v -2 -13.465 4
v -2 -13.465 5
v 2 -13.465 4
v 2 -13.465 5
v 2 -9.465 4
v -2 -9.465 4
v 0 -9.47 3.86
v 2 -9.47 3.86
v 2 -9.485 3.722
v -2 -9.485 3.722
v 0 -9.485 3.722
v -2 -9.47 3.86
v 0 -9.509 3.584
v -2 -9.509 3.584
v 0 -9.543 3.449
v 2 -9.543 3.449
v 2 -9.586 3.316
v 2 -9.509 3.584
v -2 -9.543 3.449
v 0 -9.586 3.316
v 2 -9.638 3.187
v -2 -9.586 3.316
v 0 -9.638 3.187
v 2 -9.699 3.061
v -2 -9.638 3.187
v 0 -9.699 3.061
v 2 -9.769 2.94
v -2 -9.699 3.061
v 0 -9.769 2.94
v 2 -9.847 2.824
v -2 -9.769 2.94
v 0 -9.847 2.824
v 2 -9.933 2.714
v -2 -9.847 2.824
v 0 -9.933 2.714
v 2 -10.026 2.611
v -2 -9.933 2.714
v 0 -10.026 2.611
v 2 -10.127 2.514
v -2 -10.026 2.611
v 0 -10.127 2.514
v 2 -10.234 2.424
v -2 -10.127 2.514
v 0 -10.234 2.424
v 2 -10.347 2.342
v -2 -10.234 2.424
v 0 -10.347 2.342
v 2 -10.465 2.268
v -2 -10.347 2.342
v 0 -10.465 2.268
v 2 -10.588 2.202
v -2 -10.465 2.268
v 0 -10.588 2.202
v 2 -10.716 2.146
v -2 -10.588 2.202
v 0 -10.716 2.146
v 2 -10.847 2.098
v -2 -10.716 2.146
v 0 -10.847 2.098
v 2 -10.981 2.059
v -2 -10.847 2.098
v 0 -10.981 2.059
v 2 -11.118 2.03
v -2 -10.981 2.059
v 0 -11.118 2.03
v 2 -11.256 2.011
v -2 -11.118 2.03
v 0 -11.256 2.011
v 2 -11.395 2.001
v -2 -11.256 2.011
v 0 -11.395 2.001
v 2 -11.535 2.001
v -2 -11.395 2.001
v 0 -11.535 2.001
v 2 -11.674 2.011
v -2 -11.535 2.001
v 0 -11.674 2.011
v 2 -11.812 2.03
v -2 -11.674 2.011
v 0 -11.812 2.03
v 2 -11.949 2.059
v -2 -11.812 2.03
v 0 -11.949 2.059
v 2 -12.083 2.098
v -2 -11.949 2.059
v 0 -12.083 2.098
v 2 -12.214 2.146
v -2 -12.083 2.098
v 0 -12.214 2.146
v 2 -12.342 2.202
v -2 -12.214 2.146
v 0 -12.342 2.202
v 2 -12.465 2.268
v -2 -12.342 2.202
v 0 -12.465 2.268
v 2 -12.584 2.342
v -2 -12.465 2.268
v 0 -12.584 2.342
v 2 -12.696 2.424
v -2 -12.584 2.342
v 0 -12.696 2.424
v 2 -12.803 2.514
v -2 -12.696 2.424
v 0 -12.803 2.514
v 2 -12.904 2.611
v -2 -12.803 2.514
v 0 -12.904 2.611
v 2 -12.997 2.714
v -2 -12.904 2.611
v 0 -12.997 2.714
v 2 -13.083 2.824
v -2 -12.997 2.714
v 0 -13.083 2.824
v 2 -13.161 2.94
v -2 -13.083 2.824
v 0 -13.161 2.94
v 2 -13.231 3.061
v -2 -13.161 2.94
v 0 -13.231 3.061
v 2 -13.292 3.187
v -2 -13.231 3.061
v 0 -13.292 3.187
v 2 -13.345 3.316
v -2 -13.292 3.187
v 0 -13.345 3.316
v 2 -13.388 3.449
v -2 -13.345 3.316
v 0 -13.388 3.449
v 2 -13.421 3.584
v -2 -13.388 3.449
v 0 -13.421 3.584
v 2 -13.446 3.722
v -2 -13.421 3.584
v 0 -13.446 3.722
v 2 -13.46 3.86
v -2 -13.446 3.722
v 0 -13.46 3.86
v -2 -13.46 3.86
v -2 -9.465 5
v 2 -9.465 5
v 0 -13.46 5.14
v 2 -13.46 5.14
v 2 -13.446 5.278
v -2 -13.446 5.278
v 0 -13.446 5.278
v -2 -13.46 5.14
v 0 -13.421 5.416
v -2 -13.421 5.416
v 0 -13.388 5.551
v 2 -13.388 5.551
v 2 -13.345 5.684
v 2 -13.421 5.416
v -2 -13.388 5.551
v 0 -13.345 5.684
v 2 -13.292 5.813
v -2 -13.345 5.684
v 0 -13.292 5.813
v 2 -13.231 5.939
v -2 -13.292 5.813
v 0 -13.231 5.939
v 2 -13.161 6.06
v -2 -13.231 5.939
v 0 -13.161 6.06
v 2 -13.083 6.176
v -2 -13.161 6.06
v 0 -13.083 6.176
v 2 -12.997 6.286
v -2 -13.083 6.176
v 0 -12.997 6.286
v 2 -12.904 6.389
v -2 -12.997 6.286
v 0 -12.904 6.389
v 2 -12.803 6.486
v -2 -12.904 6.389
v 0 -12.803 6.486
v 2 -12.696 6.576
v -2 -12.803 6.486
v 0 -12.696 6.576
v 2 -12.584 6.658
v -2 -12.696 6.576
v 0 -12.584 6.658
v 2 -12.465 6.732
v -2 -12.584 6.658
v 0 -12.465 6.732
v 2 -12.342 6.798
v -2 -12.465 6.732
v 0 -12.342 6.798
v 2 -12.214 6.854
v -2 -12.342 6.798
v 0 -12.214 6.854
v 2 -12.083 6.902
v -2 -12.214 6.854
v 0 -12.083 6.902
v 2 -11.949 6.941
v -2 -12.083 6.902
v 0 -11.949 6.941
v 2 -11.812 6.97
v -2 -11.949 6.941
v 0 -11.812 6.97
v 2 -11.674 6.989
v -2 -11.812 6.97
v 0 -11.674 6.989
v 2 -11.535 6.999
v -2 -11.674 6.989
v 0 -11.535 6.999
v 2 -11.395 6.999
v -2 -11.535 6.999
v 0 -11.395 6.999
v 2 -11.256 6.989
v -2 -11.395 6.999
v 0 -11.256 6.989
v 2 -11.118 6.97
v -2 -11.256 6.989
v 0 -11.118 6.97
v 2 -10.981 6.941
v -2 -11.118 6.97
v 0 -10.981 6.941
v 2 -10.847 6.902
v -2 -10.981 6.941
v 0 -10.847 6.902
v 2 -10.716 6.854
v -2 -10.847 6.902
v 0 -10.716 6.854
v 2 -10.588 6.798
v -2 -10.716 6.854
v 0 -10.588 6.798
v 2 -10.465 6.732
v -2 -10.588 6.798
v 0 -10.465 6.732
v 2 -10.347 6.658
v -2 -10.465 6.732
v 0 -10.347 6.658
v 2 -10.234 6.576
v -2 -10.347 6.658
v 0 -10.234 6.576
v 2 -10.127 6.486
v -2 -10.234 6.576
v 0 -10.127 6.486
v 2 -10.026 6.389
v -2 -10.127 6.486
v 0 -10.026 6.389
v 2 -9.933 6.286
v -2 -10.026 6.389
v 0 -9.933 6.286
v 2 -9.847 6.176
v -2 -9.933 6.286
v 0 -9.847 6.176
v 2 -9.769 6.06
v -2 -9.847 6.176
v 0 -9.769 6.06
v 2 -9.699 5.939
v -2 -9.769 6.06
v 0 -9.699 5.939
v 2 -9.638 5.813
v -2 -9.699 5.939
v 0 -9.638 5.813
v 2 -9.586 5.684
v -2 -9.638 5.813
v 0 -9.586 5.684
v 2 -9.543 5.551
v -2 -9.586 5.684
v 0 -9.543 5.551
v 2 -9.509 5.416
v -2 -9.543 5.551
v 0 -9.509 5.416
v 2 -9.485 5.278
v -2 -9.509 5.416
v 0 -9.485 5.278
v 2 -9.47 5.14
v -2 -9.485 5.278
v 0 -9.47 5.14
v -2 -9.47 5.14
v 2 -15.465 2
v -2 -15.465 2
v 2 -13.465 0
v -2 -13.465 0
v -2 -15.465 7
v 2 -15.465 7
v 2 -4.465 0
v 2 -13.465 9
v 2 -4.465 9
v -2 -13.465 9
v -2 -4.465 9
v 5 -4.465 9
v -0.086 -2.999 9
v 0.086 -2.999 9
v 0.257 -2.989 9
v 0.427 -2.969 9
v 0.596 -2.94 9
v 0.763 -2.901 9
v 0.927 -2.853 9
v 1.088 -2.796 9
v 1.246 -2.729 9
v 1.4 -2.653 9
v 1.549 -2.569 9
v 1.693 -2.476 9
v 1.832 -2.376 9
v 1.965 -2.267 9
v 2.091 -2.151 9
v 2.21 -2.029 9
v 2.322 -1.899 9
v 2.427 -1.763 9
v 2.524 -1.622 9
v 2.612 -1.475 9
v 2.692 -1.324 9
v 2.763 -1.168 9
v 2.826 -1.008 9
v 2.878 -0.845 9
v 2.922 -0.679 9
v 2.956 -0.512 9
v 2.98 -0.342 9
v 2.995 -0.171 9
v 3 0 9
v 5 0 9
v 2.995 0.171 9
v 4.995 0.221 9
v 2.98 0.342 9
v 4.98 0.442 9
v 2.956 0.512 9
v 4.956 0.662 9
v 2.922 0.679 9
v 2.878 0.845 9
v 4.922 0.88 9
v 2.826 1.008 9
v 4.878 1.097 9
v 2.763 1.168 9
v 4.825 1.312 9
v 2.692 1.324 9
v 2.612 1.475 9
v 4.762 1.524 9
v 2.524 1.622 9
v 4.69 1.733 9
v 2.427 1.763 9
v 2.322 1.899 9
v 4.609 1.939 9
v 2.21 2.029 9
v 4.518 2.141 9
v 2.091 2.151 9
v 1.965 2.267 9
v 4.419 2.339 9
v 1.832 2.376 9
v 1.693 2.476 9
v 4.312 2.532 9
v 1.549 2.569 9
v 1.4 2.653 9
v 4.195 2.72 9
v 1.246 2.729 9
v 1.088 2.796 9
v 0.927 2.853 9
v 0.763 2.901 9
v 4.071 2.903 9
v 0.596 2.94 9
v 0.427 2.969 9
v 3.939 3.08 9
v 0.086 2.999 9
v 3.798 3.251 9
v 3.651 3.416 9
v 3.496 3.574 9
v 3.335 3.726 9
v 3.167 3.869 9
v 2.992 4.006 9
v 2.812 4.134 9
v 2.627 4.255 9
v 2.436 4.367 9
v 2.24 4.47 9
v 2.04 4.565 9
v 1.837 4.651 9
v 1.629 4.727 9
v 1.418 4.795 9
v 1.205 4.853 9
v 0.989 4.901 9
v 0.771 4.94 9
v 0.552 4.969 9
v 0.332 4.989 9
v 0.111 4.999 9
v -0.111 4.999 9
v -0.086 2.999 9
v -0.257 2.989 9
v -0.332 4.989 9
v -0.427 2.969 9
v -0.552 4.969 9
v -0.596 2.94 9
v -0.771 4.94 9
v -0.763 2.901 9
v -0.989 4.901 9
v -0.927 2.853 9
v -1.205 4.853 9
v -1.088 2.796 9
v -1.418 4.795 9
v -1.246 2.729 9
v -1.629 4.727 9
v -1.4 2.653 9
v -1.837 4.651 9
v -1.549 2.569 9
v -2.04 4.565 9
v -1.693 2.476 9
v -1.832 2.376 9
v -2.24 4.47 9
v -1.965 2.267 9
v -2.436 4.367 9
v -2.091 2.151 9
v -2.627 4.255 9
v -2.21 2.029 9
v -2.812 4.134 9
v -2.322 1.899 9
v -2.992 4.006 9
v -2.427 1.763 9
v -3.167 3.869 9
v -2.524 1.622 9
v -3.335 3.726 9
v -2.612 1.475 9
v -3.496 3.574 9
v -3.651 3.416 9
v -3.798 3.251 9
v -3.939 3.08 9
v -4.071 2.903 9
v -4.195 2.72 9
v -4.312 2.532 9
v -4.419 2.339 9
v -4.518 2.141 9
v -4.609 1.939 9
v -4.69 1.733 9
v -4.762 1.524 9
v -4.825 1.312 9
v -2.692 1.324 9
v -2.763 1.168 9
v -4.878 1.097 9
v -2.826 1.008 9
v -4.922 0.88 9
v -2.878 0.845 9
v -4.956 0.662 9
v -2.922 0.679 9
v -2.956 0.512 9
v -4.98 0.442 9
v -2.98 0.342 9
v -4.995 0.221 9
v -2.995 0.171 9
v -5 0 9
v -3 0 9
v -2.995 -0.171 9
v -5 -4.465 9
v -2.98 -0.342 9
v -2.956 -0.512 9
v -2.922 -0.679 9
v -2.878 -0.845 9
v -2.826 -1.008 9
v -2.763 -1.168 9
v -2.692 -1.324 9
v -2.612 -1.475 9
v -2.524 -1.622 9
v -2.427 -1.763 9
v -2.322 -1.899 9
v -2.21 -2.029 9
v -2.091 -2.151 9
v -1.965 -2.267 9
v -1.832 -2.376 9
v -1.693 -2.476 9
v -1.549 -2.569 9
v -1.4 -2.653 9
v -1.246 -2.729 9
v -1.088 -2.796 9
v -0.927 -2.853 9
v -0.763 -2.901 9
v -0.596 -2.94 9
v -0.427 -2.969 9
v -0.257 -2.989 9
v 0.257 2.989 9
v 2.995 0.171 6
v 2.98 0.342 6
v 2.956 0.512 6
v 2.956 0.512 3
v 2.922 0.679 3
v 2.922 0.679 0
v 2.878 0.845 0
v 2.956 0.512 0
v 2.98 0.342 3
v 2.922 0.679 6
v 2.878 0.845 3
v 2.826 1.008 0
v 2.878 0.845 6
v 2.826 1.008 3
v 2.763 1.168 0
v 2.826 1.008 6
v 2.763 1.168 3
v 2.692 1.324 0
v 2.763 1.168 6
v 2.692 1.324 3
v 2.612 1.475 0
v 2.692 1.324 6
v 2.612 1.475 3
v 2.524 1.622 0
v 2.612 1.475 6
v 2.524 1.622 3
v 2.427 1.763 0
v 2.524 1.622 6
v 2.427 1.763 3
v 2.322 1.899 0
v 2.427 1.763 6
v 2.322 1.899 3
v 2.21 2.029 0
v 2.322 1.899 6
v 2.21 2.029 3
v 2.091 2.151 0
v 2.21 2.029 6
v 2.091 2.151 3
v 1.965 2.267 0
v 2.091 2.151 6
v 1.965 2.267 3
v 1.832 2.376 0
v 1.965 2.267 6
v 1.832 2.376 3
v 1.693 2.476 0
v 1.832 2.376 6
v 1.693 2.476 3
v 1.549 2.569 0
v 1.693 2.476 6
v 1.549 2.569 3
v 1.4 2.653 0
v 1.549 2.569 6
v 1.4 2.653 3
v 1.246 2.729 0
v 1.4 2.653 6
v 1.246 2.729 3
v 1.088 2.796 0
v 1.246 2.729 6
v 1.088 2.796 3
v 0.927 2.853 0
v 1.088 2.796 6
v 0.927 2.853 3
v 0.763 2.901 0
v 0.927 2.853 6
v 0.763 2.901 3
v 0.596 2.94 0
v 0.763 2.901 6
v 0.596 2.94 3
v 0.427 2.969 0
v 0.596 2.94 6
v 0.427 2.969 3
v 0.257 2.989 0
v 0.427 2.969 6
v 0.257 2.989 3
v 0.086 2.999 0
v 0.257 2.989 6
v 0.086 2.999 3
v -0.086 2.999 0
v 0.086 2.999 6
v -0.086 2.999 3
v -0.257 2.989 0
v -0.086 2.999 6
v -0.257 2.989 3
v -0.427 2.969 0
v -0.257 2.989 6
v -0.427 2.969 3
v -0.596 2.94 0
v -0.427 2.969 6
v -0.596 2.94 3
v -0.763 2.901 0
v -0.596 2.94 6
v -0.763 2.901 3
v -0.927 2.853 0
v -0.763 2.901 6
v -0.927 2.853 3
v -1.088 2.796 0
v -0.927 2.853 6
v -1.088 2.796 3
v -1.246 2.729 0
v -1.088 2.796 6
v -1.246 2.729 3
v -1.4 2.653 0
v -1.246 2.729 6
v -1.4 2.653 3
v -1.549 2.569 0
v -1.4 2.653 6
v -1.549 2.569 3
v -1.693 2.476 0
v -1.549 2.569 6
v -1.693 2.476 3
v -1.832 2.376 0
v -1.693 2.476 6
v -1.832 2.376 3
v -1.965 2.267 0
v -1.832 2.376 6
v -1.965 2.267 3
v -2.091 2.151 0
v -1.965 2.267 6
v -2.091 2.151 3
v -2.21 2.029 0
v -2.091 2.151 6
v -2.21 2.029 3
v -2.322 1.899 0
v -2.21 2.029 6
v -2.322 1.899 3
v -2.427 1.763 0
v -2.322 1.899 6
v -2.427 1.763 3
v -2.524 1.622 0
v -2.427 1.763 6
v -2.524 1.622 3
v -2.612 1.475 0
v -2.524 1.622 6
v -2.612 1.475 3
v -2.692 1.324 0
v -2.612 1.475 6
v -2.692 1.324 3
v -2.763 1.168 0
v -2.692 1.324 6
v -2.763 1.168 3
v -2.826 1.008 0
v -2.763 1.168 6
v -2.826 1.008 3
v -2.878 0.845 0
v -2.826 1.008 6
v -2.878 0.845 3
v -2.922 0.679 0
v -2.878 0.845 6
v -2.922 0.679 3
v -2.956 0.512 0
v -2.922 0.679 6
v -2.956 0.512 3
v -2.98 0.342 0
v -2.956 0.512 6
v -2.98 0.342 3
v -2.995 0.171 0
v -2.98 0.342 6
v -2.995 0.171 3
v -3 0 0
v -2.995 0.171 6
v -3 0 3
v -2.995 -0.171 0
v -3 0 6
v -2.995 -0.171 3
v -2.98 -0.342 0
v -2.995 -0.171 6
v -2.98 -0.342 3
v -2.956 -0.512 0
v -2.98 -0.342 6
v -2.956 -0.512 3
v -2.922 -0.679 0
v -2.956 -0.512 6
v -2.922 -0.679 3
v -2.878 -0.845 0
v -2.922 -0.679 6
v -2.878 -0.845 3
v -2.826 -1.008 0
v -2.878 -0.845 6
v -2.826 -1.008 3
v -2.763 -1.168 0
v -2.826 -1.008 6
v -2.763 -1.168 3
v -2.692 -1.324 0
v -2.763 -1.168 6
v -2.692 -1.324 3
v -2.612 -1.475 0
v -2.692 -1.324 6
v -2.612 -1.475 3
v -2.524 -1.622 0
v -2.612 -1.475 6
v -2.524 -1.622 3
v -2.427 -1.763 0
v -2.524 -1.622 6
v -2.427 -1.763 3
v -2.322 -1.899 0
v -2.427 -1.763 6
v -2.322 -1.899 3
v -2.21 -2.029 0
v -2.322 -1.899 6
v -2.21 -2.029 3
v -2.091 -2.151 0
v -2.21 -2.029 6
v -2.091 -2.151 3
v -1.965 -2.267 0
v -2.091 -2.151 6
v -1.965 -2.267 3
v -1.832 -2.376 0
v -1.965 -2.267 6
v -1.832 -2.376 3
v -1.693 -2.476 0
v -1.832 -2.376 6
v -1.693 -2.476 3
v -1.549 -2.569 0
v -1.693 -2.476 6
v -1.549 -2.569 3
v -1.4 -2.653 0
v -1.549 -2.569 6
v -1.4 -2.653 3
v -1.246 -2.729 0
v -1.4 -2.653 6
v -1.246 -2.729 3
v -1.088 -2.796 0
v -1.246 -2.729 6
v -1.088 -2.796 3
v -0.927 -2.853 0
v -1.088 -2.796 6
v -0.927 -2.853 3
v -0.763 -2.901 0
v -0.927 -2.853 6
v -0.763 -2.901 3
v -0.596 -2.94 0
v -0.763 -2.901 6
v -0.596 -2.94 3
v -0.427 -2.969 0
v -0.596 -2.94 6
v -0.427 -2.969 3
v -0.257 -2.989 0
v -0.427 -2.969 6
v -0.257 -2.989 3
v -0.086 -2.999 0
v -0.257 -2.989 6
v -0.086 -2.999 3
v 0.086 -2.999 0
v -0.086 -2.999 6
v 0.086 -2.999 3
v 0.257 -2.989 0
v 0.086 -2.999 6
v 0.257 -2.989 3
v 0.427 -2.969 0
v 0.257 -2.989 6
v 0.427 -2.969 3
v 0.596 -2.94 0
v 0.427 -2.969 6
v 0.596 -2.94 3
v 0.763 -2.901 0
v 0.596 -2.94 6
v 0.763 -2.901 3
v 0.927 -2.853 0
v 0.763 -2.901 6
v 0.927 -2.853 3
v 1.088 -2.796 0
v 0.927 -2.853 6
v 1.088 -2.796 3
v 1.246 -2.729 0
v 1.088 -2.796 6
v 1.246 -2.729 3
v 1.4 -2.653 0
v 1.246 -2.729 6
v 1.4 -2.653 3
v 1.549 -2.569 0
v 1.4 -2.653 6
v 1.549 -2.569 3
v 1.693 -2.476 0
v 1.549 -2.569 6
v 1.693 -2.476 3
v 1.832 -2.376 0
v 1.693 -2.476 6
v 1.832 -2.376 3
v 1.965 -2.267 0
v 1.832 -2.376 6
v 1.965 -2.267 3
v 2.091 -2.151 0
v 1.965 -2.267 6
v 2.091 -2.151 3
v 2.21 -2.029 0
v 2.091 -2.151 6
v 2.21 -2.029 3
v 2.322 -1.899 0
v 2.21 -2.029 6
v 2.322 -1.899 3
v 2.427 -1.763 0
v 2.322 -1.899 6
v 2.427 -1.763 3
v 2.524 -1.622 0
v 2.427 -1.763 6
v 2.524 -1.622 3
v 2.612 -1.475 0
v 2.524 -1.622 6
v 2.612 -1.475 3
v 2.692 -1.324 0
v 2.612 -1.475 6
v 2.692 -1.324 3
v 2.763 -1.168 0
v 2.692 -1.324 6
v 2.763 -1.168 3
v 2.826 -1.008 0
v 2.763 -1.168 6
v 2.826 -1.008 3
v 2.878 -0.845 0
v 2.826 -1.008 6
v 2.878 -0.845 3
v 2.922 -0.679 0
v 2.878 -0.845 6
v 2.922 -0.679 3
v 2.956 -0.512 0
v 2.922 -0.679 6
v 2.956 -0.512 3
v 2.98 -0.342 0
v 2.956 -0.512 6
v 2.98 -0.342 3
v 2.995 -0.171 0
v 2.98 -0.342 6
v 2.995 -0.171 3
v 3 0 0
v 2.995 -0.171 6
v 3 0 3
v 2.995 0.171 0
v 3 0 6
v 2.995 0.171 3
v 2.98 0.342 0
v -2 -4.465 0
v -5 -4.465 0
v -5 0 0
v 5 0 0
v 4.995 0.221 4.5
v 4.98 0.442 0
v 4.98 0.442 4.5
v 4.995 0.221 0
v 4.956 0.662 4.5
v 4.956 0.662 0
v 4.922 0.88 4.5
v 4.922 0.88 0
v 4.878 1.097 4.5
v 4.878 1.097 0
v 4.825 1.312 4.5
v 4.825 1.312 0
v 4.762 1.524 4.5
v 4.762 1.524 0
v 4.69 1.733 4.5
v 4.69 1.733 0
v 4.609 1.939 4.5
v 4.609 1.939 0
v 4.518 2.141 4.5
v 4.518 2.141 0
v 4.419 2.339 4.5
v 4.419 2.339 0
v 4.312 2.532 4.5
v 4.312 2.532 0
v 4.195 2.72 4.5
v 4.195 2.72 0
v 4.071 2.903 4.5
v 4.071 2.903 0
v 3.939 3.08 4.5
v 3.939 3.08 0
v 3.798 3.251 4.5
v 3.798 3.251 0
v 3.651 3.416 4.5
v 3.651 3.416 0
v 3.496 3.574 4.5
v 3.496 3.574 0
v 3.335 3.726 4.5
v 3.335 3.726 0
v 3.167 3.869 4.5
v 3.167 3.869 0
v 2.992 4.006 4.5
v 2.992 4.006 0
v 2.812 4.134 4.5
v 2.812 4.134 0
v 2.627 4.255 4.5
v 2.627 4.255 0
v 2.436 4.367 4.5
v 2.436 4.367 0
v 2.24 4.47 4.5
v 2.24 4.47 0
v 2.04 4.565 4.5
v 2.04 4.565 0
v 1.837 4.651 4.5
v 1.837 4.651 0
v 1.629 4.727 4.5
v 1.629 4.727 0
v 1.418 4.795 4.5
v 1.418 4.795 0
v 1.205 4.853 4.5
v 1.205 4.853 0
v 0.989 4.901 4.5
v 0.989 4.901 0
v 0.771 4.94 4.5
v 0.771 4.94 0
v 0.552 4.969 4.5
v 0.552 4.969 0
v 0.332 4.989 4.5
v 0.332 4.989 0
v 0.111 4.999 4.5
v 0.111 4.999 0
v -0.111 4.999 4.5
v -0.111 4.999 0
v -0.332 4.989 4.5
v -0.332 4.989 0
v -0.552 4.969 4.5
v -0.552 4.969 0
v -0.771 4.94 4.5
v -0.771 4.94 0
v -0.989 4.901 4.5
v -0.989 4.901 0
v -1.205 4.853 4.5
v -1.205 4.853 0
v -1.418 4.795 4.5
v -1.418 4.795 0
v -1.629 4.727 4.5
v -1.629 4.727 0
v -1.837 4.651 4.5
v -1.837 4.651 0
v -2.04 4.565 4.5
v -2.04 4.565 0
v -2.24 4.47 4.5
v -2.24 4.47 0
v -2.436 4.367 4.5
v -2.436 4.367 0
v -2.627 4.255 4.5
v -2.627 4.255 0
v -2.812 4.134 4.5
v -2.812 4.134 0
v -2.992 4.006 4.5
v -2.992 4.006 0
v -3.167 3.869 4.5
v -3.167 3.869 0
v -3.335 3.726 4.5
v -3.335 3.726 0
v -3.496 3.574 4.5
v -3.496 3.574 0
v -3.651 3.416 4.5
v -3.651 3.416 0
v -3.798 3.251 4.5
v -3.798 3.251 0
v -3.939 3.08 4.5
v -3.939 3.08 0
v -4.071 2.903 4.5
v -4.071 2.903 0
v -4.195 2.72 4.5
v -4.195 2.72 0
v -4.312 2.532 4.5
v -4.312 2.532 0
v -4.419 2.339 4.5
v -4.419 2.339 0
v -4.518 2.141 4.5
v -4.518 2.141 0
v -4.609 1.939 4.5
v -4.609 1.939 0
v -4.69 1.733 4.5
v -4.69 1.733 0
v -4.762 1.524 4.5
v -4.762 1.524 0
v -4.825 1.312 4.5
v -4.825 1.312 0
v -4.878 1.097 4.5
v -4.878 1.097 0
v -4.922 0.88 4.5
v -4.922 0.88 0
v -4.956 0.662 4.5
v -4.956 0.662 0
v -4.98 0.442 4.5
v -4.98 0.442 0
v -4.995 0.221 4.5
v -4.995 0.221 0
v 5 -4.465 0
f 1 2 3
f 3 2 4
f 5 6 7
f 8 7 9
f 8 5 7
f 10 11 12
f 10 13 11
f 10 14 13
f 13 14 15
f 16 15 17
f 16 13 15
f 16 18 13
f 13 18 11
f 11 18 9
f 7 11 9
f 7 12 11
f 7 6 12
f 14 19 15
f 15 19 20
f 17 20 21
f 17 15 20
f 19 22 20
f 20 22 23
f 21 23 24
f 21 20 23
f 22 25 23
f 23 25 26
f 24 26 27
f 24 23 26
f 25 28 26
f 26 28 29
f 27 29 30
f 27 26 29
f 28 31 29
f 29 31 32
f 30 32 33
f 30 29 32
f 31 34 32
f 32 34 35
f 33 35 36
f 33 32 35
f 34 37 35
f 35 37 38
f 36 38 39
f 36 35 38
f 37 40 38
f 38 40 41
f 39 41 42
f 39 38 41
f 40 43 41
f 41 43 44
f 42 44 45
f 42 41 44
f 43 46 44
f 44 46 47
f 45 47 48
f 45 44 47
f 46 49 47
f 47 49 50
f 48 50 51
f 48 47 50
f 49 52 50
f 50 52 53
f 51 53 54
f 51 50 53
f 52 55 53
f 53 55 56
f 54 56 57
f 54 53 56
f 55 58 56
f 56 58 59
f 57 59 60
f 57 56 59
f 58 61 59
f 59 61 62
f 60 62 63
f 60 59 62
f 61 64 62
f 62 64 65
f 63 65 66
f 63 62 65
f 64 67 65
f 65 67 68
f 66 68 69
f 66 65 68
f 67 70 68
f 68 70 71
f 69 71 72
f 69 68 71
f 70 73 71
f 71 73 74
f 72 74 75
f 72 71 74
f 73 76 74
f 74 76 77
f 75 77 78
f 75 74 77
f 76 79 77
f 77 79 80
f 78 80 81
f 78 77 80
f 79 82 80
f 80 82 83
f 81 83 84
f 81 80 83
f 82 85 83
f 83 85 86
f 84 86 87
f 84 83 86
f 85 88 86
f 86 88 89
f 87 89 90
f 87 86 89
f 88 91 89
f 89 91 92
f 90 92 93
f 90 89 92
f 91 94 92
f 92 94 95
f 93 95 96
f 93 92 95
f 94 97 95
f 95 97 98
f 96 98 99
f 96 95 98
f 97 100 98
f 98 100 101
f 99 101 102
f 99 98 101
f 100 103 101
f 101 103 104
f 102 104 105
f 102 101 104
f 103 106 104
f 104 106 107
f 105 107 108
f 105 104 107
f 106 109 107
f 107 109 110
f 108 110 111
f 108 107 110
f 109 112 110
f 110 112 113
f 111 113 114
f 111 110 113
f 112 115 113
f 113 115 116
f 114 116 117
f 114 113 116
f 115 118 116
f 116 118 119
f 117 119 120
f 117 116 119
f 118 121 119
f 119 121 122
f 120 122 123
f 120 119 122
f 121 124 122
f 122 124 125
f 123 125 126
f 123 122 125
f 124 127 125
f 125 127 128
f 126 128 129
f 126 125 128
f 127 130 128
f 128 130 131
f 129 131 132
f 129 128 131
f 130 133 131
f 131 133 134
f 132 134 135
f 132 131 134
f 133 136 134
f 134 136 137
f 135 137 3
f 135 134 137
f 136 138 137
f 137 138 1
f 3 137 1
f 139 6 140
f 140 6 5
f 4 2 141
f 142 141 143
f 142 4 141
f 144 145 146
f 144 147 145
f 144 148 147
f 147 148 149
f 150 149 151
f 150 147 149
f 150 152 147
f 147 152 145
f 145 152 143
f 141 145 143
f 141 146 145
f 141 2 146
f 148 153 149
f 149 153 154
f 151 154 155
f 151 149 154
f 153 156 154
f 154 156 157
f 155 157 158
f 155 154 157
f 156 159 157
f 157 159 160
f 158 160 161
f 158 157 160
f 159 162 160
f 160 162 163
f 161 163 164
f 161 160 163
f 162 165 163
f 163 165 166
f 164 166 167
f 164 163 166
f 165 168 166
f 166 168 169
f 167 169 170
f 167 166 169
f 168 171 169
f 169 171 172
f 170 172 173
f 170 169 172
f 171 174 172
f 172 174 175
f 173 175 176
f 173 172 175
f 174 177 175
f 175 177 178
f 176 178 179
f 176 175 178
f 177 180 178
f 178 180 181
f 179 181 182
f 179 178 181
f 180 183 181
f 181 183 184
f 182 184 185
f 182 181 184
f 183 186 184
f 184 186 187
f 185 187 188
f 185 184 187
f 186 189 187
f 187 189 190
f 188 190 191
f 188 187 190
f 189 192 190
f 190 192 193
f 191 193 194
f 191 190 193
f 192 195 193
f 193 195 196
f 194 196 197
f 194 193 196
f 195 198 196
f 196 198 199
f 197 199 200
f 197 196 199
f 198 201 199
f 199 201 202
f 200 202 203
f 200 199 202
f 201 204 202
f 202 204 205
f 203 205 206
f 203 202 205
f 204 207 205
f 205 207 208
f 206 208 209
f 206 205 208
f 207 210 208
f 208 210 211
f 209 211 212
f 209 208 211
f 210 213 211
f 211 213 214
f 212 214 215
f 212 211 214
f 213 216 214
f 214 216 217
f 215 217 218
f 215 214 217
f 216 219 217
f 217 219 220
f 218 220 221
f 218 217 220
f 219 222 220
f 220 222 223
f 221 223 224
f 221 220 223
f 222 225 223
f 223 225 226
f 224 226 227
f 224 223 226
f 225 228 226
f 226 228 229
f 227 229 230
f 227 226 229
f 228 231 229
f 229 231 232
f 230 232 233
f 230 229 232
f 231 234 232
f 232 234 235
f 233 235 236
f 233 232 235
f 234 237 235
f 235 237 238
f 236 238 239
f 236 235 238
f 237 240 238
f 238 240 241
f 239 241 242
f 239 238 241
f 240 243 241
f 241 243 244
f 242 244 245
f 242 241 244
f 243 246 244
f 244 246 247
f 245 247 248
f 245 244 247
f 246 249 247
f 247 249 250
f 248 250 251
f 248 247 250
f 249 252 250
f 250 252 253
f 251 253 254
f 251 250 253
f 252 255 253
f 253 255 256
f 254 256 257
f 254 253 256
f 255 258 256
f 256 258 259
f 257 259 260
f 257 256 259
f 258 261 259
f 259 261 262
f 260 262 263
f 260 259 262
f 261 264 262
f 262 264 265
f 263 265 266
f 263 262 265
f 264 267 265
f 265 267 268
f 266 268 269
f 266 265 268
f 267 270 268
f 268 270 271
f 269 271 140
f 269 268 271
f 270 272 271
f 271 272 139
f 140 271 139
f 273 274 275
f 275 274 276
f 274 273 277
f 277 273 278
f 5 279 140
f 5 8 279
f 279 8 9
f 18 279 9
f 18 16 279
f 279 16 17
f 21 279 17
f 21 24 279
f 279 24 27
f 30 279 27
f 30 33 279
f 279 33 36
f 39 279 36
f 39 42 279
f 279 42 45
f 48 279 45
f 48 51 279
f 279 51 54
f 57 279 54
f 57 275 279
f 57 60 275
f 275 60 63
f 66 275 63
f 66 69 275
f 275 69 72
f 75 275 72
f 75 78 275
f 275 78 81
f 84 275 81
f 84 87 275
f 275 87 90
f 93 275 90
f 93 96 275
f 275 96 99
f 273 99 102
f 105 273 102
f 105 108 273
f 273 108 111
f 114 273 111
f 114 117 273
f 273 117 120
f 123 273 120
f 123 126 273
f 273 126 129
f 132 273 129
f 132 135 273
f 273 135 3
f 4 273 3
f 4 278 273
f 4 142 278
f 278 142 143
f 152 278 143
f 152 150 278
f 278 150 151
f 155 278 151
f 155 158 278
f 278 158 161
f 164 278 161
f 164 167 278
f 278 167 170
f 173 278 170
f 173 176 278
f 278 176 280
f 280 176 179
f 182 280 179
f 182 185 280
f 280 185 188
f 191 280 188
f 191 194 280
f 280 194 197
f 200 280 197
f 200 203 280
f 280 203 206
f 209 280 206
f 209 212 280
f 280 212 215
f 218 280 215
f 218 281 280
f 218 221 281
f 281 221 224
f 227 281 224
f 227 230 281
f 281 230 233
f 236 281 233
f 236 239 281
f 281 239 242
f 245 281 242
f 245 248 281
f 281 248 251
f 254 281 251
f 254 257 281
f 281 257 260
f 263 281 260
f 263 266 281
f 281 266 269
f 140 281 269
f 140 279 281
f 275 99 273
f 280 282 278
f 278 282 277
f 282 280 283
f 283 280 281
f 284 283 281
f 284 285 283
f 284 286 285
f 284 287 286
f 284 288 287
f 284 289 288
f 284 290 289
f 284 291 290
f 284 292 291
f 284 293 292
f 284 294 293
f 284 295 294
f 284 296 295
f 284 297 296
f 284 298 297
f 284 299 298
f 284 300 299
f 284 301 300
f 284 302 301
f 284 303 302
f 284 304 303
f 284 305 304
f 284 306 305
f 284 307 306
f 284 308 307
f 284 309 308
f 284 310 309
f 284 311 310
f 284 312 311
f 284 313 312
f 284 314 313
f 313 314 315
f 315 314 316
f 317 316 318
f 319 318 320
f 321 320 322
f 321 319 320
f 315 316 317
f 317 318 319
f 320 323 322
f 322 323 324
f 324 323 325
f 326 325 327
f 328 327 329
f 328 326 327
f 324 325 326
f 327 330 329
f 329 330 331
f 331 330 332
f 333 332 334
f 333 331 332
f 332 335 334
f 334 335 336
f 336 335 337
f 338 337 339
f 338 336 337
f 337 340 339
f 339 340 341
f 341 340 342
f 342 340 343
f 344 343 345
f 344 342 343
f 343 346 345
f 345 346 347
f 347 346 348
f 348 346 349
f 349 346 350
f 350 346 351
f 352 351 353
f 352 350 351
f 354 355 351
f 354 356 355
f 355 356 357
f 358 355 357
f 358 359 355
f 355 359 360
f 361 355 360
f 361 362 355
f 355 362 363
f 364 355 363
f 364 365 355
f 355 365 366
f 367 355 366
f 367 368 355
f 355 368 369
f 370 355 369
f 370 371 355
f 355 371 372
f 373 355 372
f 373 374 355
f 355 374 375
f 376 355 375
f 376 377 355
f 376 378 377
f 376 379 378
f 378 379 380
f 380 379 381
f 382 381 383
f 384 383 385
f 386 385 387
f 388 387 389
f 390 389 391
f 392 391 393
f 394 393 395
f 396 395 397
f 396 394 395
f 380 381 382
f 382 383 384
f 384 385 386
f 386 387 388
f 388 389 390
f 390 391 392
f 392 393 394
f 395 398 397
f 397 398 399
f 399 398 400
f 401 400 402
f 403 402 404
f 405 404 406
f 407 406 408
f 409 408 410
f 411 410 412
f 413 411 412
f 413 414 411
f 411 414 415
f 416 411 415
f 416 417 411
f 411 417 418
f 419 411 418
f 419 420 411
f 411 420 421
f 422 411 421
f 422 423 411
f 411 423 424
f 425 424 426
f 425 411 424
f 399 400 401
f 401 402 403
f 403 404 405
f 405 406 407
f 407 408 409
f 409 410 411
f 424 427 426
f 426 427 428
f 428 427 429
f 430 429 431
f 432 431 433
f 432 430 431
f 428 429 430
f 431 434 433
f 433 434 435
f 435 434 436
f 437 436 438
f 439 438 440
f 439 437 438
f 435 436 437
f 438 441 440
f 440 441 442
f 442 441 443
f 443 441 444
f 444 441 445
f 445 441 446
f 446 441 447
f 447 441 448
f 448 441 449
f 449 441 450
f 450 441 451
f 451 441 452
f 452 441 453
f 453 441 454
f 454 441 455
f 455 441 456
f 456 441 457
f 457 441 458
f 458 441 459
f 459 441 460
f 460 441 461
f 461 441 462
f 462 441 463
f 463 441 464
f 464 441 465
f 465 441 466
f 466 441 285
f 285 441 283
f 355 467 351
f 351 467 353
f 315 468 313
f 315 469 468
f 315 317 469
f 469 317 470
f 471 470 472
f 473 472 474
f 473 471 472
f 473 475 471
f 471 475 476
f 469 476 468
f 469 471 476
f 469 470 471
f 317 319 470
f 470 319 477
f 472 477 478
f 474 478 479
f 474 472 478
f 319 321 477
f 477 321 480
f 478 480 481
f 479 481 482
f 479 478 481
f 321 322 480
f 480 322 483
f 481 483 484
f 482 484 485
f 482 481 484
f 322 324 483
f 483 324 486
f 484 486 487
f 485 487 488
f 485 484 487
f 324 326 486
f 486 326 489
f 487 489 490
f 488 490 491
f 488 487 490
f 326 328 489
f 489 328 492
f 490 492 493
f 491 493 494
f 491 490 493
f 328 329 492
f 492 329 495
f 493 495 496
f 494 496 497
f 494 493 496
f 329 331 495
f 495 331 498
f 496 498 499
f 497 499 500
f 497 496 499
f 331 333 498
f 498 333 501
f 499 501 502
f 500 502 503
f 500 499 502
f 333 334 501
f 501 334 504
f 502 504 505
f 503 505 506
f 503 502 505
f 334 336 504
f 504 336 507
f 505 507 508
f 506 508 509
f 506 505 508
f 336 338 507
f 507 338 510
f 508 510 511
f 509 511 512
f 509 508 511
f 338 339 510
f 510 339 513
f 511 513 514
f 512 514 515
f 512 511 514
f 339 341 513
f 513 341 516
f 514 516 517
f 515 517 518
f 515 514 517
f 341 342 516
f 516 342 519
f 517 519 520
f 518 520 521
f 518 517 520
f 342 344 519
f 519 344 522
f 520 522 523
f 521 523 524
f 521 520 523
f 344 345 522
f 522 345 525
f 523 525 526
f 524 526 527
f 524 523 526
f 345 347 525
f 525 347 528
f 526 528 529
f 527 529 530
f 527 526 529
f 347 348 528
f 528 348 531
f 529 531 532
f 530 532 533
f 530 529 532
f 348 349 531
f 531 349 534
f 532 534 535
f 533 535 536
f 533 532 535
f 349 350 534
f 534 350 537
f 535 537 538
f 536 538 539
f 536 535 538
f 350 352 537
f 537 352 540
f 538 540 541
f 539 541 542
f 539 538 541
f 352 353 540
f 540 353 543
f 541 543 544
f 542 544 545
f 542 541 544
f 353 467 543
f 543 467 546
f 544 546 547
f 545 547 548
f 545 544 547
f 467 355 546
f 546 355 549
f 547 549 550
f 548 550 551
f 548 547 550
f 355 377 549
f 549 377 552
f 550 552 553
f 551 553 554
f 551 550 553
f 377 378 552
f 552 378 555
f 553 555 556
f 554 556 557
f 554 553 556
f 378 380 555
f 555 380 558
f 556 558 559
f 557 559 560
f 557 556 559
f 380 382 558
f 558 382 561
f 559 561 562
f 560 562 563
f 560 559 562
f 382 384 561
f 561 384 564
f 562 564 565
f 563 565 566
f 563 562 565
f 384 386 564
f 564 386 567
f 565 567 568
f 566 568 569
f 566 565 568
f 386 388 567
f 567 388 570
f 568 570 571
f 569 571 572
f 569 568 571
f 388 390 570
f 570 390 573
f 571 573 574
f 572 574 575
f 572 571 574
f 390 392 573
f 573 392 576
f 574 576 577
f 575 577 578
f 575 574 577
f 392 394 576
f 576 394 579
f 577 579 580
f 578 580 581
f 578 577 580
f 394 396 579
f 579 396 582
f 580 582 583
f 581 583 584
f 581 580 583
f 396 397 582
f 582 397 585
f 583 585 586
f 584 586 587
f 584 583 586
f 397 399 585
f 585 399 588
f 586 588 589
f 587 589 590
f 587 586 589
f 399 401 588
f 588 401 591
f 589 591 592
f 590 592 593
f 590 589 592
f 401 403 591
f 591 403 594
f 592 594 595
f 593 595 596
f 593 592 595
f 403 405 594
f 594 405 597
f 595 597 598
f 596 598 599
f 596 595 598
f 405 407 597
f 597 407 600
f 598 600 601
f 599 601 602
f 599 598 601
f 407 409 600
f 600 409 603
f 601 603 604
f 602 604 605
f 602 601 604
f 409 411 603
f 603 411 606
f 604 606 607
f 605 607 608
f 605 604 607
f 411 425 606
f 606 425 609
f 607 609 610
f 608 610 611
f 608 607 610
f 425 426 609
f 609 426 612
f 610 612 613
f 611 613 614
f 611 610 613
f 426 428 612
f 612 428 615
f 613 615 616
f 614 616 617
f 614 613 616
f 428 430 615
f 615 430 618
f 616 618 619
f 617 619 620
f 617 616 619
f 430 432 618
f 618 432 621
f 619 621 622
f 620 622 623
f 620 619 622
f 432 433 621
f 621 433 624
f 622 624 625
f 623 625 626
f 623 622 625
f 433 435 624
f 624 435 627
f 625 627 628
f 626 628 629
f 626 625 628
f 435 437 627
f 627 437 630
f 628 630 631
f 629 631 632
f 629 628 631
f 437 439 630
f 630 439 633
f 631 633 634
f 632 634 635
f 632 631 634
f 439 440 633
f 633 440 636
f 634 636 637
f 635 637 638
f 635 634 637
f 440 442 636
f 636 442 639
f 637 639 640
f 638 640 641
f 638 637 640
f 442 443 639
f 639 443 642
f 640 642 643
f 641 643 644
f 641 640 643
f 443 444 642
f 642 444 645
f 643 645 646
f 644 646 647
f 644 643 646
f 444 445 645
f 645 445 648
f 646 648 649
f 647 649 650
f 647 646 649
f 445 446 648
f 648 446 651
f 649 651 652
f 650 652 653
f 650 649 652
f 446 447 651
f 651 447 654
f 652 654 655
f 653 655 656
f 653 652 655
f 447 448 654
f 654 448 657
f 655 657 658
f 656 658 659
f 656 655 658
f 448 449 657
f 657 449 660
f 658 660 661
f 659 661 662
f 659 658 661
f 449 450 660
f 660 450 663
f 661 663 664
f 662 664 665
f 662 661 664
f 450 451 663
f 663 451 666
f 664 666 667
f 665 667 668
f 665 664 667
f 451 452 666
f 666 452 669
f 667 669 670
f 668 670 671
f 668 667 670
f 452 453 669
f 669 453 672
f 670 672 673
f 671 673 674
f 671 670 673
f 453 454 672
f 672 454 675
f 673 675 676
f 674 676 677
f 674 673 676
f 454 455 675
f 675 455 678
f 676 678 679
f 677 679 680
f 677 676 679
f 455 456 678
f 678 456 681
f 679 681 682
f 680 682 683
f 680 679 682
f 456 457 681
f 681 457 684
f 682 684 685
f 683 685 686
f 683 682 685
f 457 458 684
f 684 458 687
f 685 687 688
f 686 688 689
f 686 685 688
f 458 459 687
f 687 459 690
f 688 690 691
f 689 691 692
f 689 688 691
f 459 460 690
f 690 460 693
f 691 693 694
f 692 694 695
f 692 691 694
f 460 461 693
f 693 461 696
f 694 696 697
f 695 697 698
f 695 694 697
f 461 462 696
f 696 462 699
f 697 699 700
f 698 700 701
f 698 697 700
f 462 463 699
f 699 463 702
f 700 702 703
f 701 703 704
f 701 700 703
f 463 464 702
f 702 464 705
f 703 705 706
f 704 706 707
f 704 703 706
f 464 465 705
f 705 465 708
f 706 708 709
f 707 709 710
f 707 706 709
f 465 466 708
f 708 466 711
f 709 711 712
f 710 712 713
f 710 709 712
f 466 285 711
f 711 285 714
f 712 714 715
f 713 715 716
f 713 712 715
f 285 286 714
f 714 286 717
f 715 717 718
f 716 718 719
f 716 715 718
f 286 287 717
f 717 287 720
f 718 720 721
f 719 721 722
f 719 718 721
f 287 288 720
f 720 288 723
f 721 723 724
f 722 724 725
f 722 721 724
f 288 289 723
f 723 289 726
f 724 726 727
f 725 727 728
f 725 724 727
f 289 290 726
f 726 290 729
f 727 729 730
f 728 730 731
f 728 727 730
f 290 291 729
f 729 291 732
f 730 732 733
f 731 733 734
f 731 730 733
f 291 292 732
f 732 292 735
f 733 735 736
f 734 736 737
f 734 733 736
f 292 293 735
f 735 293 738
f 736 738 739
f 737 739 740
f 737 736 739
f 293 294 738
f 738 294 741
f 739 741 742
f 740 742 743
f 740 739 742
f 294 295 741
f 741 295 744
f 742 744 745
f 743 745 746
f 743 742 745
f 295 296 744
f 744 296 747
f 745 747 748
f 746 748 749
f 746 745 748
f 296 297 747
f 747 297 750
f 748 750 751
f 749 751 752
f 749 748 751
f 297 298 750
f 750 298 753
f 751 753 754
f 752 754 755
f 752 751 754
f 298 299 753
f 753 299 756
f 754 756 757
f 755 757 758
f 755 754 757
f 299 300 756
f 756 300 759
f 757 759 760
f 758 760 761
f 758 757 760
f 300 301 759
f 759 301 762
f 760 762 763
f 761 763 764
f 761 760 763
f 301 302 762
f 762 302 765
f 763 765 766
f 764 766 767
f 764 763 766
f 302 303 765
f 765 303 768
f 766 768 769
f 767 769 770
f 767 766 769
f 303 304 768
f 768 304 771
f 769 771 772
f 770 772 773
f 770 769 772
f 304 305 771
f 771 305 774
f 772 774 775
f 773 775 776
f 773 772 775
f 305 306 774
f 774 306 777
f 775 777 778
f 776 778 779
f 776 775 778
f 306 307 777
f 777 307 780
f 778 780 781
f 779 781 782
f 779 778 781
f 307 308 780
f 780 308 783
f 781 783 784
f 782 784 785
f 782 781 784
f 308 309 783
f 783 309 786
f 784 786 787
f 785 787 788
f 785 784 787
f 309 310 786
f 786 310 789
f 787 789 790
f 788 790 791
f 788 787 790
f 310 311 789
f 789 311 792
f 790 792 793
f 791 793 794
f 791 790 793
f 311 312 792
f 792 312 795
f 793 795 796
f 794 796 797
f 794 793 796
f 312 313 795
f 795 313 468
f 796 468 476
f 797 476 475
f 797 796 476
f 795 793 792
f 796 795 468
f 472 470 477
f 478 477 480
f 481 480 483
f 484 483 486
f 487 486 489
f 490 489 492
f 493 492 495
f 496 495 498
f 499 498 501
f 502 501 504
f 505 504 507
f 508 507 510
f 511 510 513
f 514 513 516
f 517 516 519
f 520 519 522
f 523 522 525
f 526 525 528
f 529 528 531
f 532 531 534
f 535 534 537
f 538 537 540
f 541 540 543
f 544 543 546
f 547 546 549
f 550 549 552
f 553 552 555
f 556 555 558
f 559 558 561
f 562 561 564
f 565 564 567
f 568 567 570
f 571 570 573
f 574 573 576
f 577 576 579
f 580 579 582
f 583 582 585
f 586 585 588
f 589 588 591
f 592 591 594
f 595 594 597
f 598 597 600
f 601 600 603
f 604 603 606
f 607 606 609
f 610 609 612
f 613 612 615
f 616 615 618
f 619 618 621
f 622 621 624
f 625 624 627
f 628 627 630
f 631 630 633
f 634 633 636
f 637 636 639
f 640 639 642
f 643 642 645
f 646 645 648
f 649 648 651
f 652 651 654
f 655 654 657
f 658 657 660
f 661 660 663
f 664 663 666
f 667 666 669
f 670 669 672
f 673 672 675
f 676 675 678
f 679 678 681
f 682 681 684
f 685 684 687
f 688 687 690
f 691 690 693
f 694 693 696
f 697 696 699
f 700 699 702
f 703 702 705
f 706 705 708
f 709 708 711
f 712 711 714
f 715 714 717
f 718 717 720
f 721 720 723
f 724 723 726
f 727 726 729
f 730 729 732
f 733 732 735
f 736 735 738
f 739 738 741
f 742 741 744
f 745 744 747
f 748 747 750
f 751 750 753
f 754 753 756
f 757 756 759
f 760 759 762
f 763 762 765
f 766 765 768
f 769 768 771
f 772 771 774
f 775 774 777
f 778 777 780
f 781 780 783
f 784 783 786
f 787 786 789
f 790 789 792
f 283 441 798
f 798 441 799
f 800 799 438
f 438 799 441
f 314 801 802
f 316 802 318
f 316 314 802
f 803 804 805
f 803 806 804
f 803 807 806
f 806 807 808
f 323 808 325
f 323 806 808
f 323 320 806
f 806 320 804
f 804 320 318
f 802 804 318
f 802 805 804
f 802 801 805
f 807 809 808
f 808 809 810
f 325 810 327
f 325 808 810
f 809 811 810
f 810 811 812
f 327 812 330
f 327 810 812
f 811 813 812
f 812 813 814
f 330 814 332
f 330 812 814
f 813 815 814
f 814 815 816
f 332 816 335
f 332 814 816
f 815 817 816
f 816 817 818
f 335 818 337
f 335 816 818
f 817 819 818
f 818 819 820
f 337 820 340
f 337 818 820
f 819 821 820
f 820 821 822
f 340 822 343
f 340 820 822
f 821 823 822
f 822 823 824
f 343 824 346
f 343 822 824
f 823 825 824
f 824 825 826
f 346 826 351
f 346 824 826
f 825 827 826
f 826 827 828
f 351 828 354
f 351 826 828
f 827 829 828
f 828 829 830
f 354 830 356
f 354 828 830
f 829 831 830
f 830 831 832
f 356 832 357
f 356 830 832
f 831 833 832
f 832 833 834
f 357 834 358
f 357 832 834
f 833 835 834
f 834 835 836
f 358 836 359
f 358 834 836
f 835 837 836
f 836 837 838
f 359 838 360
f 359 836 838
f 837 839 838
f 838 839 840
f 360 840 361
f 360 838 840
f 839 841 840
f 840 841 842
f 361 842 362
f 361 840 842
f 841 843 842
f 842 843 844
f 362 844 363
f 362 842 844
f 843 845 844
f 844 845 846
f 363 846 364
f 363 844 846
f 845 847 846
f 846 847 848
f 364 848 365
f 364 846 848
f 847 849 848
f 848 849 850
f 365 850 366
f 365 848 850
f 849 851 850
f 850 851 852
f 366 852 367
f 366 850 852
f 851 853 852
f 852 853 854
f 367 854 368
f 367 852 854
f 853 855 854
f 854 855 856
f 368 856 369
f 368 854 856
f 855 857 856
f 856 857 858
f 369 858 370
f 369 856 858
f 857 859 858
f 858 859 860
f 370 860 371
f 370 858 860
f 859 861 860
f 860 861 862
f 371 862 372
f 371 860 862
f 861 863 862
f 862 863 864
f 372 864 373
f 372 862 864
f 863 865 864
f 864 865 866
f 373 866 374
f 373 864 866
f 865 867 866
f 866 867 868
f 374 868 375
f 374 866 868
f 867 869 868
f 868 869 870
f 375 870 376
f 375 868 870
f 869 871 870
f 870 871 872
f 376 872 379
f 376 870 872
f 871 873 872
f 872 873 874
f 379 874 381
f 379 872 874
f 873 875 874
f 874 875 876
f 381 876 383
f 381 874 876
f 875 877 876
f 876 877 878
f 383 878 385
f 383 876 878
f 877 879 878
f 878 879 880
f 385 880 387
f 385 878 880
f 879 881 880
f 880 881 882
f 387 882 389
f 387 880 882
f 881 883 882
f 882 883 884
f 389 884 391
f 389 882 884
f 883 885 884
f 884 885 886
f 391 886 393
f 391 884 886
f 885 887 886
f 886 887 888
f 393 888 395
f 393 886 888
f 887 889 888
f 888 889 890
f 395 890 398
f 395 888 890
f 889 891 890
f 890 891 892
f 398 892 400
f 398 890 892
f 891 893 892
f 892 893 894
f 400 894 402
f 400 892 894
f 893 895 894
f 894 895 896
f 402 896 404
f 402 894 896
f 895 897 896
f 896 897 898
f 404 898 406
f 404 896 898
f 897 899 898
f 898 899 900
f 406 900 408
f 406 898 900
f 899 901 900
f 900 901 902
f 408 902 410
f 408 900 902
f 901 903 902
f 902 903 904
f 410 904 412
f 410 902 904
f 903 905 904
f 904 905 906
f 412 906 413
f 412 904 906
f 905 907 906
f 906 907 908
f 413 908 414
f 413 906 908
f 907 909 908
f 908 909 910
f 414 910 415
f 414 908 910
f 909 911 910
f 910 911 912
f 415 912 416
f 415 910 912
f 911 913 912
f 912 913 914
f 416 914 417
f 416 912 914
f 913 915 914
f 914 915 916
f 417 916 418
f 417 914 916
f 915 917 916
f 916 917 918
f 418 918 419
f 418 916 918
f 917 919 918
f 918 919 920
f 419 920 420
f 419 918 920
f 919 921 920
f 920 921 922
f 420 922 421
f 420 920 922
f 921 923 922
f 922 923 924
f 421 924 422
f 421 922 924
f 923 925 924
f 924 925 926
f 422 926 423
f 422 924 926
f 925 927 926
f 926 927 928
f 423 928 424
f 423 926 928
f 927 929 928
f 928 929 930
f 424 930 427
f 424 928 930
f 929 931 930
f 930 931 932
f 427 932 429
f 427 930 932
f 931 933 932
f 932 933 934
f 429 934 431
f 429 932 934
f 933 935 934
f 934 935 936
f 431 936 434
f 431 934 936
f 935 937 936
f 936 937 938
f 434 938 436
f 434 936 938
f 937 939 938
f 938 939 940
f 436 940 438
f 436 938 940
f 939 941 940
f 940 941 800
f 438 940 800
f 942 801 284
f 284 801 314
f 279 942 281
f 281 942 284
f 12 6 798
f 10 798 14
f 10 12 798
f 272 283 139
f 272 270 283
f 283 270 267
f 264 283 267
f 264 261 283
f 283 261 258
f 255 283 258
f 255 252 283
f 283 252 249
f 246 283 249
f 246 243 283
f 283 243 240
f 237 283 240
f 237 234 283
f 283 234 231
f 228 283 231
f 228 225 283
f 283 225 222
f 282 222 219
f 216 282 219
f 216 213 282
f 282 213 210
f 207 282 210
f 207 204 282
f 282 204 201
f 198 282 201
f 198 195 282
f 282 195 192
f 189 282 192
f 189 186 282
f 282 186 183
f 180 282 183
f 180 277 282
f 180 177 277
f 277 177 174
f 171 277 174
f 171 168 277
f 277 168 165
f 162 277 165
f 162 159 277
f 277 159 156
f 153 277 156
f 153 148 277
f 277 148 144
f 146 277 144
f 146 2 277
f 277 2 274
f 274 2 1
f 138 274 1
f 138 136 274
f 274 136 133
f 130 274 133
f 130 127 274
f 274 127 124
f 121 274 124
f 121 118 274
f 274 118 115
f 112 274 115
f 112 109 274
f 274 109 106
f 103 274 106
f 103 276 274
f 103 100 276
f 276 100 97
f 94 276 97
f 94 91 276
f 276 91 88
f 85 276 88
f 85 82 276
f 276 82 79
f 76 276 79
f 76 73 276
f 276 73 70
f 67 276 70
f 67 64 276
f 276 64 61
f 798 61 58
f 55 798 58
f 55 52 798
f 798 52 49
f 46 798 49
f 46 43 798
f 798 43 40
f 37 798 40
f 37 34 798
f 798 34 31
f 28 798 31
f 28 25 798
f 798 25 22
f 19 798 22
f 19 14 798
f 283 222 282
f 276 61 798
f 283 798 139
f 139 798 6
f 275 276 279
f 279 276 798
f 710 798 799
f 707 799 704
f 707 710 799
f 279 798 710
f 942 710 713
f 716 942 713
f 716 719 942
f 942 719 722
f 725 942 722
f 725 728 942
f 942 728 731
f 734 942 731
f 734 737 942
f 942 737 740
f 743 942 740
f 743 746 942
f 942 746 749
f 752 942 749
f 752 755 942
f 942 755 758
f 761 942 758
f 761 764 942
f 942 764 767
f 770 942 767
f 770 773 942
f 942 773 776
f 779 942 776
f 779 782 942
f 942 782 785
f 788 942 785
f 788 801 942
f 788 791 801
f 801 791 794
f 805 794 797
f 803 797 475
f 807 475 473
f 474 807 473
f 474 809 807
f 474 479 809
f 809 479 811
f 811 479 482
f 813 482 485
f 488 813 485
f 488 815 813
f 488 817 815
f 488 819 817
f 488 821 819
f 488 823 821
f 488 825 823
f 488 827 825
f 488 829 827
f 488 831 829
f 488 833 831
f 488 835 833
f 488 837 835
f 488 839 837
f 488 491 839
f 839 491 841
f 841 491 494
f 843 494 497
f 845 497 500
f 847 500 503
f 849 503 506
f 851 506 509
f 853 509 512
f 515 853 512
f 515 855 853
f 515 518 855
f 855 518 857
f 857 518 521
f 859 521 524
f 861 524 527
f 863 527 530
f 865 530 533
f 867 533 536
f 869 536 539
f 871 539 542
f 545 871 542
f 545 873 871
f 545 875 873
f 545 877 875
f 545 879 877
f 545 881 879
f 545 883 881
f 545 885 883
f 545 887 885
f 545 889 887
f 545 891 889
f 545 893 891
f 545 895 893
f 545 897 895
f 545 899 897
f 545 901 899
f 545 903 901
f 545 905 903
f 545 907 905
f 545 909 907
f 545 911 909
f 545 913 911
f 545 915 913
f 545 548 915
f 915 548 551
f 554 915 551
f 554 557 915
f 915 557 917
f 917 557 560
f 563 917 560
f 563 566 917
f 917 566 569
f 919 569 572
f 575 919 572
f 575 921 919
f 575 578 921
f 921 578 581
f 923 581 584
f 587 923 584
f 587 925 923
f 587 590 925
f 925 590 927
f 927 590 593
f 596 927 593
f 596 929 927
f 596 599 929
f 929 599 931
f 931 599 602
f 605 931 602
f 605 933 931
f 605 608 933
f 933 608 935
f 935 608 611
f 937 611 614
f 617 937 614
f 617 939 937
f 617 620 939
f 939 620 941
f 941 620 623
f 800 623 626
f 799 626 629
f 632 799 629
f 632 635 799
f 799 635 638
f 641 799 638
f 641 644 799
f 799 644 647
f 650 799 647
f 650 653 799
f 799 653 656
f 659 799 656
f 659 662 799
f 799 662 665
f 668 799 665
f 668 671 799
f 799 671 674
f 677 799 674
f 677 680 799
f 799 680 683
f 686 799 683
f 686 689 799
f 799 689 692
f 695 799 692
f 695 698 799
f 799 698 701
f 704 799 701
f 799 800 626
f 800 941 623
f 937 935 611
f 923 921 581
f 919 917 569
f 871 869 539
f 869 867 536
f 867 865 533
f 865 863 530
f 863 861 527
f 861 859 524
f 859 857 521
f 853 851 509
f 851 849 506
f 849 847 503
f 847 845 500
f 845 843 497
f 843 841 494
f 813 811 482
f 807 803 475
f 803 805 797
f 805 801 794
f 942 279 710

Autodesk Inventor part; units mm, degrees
ref_plane "YZ Plane" through (0, 0, 0) normal (1, 0, 0) x (0, 1, 0)
ref_plane "XZ Plane" through (0, 0, 0) normal (0, 1, 0) x (-1, 0, 0)
ref_plane "XY Plane" through (0, 0, 0) normal (0, 0, 1) x (1, 0, 0)
sketch "TopProfile" plane through (0, 0, 0) normal (0, 0, 1) x (1, 0, 0)
  circle A0 centre (0, 0) radius 3
  circle A1 centre (0, 0) radius 5 construction
  line L0 (-2, -4.4651) -> (-2, -15.4651)
  line L1 (-2, -15.4651) -> (2, -15.4651)
  line L2 (2, -15.4651) -> (2, -4.4651)
  line L3 (-2, -4.4651) -> (2, -4.4651)
  line L4 (2.25, -4.4651) -> (-2.25, -4.4651) construction
  line L5 (5, -4.4651) -> (-5, -4.4651)
  line L6 (5, 0) -> (5, -4.4651)
  line L7 (-5, 0) -> (-5, -4.4651)
  arc A2 (5, 0) -> (-5, 0) centre (0, 0) ccw
  dimension "d0" = 6
  dimension "d1" = 10
  dimension "d3" = 4
  dimension "d5" = 11
  dimension "d8" = 4.5
  dimension "d9" = 0.25
extrude "TopProfileFeature" add sketch "TopProfile" along normal blind 9
chamfer "BodyChamferFeatures" distance 2 angle 45 2 edges at (0, -15.4651, 9) (0, -15.4651, 0)
sketch "MountRail" plane through (2, -13.4651, 9) normal (1, 0, 0) x (0, 0, -1)
  line L0 (0, 0) -> (0, 9) construction
  line L1 (0, 2) -> (9, 2) construction
  arc A0 (5, 0) -> (5, 4) centre (5, 2) ccw
  arc A1 (4, 4) -> (4, 0) centre (4, 2) ccw
  line L2 (5, 4) -> (4, 4)
  line L3 (5, 0) -> (4, 0)
  line L4 (7, -2) -> (2, -2) construction
  line L5 (9, 9) -> (9, 0) construction
  point P0 (9, -2)
  dimension "d41" = 2
  dimension "d43" = 4
  dimension "d44" = 4
  dimension "d55" = 4
extrude "MountRailFeature" cut sketch "MountRail" against normal through all
properties part number "ForearmCuffConnector"
